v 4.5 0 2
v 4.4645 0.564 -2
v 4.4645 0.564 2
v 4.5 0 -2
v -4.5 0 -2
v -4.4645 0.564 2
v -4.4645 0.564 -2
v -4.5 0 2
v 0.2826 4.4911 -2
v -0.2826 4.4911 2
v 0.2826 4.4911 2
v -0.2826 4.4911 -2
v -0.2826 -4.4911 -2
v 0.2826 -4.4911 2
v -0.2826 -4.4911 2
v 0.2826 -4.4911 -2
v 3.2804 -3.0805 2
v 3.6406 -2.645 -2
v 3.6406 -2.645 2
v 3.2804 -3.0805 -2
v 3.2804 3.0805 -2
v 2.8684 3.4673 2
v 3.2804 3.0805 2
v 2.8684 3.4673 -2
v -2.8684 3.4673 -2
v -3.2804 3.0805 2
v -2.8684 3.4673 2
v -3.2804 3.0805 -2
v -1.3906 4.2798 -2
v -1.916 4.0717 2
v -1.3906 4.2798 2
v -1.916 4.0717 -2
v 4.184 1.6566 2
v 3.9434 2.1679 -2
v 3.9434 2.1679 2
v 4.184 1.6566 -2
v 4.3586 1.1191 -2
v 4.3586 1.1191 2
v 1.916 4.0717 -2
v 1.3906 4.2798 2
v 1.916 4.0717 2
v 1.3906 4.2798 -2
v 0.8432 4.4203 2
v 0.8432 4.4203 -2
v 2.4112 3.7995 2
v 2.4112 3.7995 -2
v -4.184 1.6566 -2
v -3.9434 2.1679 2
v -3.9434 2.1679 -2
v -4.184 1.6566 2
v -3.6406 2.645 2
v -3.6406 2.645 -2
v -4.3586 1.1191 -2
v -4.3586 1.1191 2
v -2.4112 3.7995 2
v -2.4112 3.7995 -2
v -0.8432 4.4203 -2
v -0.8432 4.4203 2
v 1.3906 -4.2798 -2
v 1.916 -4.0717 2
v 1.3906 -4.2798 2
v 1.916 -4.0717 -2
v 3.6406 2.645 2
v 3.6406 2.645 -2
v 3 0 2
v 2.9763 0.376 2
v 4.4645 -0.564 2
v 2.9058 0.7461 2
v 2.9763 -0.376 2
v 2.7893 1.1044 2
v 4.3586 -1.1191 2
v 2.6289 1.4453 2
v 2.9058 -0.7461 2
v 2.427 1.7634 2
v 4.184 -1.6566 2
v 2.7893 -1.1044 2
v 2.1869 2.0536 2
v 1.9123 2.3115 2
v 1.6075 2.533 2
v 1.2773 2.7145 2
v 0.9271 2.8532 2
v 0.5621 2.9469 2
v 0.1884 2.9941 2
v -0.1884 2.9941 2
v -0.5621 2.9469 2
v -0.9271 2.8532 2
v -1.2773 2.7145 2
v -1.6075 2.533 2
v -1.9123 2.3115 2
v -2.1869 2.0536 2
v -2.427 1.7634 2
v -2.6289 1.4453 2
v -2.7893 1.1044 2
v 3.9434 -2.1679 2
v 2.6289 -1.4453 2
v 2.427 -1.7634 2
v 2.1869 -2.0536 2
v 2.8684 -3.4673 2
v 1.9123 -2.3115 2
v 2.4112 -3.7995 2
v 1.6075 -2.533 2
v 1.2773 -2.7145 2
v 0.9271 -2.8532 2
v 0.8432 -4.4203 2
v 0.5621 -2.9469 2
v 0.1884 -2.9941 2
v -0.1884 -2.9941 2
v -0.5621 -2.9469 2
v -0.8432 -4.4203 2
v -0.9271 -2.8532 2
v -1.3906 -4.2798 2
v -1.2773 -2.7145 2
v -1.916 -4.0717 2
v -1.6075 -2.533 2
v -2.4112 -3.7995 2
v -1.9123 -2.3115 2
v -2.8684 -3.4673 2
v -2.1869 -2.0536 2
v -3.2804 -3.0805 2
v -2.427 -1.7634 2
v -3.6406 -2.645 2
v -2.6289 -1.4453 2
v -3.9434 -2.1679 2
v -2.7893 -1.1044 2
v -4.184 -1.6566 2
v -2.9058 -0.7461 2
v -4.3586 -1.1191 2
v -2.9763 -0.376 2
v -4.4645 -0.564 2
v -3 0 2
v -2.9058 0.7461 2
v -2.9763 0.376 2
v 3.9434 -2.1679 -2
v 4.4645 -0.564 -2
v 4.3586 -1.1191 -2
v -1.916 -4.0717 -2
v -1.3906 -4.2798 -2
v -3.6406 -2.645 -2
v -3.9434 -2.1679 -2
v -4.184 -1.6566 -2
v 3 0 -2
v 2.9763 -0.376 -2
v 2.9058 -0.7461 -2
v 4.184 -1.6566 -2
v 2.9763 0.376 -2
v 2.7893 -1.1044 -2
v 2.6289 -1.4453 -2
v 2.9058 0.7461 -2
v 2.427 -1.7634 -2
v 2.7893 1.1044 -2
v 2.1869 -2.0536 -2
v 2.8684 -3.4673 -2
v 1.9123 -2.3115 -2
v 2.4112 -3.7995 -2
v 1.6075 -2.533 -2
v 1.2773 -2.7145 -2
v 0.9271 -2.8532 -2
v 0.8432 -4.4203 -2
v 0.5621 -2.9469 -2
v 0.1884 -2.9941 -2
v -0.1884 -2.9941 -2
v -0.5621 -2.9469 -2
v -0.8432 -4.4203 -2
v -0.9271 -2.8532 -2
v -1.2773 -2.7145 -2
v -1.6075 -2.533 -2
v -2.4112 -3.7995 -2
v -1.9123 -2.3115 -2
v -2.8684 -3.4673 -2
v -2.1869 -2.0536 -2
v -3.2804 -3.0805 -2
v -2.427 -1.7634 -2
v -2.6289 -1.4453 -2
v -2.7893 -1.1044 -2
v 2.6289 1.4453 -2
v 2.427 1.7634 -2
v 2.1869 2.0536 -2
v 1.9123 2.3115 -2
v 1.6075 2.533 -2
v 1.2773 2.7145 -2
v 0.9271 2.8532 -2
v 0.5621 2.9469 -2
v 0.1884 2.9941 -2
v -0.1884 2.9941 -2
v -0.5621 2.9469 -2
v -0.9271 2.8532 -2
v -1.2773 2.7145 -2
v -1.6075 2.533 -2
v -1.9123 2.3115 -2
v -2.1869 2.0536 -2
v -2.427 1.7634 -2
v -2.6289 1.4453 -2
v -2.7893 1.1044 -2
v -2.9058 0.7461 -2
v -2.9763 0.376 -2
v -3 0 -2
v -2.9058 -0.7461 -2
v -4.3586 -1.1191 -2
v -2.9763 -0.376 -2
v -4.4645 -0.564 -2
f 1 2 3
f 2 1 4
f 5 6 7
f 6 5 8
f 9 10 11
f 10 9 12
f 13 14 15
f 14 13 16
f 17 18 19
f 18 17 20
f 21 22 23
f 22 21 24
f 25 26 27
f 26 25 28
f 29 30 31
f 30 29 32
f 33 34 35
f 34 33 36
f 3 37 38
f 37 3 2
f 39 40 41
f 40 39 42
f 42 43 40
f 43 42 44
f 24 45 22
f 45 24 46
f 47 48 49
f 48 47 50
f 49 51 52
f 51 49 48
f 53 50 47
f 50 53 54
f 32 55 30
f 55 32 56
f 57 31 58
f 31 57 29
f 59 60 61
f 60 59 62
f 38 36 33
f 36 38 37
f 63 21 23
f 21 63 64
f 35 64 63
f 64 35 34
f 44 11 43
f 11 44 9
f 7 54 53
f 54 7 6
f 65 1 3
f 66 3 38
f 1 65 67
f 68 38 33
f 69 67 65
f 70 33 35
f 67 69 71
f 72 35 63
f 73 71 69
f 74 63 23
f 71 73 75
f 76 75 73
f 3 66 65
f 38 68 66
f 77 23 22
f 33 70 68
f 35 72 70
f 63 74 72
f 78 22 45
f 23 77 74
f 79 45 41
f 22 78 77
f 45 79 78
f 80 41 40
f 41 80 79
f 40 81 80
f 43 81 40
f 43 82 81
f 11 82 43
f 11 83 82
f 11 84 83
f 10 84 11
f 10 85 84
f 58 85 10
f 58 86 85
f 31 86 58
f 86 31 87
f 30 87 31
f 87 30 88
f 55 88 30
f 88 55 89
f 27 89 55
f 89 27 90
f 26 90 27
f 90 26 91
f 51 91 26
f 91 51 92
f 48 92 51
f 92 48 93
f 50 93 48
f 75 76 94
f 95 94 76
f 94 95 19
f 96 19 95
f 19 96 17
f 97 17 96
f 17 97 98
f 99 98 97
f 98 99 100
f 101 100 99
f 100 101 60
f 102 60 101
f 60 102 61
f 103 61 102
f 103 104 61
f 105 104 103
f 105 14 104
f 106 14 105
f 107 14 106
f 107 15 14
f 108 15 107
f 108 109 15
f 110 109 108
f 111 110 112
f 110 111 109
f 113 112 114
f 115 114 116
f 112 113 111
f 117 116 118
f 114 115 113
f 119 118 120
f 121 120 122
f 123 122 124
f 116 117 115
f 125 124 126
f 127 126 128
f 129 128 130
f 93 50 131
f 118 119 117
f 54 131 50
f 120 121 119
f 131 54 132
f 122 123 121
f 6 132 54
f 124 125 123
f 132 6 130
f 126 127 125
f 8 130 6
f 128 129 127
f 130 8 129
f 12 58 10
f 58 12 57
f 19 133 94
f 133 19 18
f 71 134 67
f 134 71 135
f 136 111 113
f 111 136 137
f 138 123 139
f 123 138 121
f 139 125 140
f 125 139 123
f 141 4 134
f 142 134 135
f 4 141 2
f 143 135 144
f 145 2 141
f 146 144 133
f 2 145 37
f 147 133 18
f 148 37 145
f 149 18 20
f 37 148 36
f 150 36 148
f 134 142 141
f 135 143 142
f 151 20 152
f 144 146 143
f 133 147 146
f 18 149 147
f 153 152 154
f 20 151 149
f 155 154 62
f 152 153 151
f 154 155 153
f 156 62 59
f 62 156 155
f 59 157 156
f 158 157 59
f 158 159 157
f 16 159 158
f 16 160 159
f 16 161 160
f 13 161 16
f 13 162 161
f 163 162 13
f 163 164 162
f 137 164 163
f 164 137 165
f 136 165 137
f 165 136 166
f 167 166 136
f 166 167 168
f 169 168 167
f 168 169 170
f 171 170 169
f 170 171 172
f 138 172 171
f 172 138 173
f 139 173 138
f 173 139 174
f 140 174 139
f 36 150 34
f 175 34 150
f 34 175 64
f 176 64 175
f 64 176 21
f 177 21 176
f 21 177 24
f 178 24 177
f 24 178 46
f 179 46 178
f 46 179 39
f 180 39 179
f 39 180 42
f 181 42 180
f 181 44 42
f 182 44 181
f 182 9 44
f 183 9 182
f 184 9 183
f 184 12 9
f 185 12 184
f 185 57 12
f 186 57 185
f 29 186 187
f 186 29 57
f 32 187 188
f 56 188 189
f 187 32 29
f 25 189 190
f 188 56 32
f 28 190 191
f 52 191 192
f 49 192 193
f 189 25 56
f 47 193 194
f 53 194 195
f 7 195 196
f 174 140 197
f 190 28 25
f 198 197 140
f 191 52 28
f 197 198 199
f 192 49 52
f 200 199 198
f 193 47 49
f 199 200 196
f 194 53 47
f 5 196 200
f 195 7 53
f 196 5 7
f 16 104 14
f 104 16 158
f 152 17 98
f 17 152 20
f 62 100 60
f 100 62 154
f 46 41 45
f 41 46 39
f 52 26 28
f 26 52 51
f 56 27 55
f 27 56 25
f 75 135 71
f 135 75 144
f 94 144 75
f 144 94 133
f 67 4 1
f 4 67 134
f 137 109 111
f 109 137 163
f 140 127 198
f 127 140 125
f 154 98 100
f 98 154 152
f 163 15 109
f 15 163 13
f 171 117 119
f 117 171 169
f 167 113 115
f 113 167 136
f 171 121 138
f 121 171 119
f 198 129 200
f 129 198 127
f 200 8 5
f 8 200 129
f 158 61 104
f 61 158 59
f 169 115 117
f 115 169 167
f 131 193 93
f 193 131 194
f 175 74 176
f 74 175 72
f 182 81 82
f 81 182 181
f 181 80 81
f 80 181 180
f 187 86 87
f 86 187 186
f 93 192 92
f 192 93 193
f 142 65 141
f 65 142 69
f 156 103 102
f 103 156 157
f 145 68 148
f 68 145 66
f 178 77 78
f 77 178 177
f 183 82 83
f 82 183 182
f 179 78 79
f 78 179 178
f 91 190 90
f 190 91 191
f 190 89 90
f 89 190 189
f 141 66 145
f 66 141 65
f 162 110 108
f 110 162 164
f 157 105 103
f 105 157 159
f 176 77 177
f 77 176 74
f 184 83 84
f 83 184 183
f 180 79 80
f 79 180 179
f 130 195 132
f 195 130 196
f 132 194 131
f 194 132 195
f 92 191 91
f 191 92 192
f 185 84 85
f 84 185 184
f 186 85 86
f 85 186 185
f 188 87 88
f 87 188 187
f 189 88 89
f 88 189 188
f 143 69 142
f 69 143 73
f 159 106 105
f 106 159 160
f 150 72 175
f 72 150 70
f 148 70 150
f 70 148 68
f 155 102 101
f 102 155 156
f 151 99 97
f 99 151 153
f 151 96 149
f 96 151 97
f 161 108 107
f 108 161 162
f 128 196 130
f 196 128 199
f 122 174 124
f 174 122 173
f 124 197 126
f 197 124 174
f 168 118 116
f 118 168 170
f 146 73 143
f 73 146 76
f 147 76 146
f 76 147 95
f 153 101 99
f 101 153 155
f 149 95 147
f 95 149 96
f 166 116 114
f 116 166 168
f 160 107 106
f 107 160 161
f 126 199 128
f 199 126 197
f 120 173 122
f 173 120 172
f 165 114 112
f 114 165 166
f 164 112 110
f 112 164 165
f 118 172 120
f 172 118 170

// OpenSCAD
$fn = 50;


difference() {
	union() {
		translate(v = [0, 0, -2.0000000000]) {
			cylinder(h = 4, r = 4.5000000000);
		}
	}
	union() {
		translate(v = [0, 0, -100.0000000000]) {
			cylinder(h = 200, r = 3);
		}
	}
}
